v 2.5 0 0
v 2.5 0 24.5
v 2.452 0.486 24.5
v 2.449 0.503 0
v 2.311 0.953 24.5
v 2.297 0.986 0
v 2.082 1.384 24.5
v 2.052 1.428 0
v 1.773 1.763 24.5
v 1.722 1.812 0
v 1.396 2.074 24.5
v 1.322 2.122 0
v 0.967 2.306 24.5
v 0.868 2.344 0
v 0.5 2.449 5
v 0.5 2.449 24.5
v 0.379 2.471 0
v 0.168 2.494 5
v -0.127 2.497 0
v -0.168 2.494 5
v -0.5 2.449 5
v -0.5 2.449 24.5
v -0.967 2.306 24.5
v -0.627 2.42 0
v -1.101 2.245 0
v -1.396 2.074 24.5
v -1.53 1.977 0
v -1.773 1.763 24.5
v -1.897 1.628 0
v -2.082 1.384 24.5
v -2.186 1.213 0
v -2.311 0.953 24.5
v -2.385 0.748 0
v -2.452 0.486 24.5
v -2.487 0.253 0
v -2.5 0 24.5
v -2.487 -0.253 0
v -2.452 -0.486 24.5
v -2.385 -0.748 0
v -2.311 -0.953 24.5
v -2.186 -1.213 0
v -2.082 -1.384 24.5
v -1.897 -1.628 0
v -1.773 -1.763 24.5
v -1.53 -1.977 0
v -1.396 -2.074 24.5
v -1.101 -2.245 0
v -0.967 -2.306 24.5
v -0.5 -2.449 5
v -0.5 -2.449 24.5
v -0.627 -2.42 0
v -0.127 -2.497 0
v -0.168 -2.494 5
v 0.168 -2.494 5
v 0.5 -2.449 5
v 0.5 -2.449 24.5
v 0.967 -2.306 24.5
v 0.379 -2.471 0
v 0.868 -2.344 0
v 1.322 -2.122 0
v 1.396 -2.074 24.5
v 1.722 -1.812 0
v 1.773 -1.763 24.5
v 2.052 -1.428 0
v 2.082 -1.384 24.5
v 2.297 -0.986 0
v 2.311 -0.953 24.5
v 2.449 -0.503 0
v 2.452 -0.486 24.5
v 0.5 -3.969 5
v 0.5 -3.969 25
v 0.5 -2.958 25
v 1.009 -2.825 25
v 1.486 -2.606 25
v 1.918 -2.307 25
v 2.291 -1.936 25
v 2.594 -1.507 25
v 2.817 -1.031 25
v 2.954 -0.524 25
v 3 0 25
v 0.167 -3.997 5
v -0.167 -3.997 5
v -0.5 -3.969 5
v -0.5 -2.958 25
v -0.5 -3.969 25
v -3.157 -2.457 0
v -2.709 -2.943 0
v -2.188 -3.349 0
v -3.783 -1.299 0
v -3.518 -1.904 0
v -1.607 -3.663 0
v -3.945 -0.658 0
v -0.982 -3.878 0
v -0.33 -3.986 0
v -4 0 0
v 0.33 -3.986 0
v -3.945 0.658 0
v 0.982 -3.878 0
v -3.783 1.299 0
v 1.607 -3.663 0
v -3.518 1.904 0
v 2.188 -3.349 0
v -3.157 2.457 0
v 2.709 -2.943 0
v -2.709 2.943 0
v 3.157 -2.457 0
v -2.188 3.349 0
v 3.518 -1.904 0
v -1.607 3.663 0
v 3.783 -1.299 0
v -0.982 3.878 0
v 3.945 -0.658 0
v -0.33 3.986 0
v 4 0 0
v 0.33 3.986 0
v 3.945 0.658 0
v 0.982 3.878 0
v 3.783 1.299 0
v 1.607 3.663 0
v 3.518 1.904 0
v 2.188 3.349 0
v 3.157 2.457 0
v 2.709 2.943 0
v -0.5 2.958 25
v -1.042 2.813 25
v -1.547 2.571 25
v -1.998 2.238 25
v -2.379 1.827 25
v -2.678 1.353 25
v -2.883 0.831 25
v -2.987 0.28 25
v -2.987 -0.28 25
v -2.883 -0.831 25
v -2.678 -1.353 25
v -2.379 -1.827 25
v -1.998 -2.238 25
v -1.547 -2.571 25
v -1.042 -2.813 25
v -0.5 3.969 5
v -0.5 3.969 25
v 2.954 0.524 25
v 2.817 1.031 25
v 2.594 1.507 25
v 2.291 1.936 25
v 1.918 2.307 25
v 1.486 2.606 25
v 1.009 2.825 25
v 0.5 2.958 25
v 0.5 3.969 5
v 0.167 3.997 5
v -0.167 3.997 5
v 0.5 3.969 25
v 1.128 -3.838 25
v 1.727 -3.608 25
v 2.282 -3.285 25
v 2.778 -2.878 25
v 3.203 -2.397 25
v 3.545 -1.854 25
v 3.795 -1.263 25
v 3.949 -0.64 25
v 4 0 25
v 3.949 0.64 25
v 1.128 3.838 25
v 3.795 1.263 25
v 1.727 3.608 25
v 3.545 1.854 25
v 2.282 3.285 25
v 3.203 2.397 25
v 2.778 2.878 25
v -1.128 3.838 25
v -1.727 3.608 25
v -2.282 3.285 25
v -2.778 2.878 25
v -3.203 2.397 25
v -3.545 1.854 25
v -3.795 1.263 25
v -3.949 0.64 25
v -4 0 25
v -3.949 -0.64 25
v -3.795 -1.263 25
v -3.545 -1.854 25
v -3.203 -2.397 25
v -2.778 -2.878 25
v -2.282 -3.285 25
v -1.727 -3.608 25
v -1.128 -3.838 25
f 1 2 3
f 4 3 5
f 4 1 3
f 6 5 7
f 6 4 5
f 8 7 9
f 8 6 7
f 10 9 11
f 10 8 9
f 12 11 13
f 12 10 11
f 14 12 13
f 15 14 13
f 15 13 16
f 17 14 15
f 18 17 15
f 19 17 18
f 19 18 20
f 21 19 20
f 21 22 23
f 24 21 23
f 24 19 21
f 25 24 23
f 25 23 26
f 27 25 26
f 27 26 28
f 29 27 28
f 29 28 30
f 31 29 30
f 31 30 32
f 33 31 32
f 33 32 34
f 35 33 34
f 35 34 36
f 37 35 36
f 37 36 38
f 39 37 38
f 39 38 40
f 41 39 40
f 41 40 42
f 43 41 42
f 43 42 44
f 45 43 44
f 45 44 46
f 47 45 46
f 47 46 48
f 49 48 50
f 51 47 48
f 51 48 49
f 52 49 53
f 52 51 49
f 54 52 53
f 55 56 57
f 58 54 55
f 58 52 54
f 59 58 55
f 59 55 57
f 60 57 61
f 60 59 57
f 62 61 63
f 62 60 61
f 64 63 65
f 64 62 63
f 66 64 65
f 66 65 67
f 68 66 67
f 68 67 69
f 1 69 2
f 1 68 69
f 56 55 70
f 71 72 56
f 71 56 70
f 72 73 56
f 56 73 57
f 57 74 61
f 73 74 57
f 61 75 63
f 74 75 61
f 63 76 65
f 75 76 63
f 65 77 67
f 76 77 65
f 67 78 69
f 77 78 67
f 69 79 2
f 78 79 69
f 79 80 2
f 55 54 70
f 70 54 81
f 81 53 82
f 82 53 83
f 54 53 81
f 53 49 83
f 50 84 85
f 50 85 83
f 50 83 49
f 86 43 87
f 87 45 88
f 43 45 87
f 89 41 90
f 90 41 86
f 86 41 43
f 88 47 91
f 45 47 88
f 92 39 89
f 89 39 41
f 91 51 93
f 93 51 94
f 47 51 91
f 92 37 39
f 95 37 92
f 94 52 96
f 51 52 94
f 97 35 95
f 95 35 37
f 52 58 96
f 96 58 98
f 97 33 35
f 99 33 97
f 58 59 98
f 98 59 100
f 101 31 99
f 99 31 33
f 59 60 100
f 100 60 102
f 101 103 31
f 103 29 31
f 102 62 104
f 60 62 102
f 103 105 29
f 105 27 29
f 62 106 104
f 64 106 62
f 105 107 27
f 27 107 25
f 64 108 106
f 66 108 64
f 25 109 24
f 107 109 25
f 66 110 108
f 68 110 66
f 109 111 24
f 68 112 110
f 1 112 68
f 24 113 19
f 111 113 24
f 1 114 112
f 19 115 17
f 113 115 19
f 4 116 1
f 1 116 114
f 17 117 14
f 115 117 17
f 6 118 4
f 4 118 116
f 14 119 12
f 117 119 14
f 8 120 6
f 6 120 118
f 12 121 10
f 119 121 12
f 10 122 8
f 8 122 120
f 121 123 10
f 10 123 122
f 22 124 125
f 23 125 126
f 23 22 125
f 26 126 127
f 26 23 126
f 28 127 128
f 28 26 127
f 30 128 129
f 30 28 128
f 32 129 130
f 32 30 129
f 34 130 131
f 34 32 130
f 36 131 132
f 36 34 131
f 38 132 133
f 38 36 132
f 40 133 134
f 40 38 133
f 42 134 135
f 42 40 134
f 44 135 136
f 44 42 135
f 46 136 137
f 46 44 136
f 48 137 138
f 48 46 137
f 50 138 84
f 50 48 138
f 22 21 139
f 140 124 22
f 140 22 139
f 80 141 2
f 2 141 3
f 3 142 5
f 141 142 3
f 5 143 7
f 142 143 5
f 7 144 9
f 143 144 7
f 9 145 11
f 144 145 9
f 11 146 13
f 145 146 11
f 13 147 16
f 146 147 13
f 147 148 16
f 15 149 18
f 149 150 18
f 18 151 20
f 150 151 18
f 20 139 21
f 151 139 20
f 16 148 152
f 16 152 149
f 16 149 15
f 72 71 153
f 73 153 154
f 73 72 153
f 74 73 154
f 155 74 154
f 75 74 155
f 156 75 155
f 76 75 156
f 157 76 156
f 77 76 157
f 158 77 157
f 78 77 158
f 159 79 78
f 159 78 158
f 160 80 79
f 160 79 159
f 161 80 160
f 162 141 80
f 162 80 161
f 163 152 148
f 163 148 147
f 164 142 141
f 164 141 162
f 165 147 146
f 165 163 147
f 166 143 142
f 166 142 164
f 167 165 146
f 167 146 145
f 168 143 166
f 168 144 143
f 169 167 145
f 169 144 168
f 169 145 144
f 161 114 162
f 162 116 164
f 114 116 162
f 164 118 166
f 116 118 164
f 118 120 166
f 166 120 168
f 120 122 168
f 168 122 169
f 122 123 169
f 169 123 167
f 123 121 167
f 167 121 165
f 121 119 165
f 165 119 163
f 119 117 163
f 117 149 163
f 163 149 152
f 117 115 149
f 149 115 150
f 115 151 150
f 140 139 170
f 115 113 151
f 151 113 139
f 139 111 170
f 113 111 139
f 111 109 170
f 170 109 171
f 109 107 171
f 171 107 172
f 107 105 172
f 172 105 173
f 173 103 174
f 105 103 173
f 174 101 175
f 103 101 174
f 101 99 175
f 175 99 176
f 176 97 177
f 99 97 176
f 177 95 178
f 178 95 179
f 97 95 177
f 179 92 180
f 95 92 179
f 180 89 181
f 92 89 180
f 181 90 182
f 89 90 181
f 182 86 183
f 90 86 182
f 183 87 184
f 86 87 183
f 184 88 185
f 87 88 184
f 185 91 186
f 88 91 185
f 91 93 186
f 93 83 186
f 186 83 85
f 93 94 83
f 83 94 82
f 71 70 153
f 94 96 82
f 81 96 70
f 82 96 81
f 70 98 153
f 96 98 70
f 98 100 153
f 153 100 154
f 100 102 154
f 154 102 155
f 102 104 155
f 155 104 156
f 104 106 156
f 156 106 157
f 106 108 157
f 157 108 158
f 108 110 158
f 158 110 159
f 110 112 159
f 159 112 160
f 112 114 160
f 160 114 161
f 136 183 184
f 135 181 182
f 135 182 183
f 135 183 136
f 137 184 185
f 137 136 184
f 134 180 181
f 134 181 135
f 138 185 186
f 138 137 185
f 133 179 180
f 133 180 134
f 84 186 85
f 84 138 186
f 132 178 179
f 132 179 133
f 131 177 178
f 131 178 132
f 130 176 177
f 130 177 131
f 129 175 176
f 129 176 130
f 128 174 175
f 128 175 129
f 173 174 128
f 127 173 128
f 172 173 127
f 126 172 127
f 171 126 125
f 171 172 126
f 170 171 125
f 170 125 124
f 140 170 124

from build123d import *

# Parameters (mm, degrees)
SKETCH_R        = 4
SKETCH_R_2      = 2.5
PAD_DEPTH       = 25
SKETCH001_W     = 1
SKETCH001_H     = 17.797282
POCKET_DEPTH    = 20
CHAMFER_SIZE    = 0.5
CHAMFER001_SIZE = 0.5


with BuildPart() as part:
    # Sketch → Pad (new body)
    with BuildSketch(Plane.XY):
        Circle(SKETCH_R)
        Circle(SKETCH_R_2, mode=Mode.SUBTRACT)
    extrude(amount=PAD_DEPTH)

    # Sketch001 (on Face4 of Pad) → Pocket (cut)
    with BuildSketch(Plane.XY.offset(25)):
        Rectangle(SKETCH001_W, SKETCH001_H)
    extrude(amount=-POCKET_DEPTH, mode=Mode.SUBTRACT)

    # Chamfer
    chamfer_edges = [part.edges().sort_by_distance(p)[0] for p in [
        (-2.5, 0, 25),
    ]]
    chamfer(chamfer_edges, length=CHAMFER_SIZE)

    # Chamfer001
    chamfer001_edges = [part.edges().sort_by_distance(p)[0] for p in [
        (1.936492, 1.581139, 25),
        (1.936492, -1.581139, 25),
    ]]
    chamfer(chamfer001_edges, length=CHAMFER001_SIZE)


solid = part.part
